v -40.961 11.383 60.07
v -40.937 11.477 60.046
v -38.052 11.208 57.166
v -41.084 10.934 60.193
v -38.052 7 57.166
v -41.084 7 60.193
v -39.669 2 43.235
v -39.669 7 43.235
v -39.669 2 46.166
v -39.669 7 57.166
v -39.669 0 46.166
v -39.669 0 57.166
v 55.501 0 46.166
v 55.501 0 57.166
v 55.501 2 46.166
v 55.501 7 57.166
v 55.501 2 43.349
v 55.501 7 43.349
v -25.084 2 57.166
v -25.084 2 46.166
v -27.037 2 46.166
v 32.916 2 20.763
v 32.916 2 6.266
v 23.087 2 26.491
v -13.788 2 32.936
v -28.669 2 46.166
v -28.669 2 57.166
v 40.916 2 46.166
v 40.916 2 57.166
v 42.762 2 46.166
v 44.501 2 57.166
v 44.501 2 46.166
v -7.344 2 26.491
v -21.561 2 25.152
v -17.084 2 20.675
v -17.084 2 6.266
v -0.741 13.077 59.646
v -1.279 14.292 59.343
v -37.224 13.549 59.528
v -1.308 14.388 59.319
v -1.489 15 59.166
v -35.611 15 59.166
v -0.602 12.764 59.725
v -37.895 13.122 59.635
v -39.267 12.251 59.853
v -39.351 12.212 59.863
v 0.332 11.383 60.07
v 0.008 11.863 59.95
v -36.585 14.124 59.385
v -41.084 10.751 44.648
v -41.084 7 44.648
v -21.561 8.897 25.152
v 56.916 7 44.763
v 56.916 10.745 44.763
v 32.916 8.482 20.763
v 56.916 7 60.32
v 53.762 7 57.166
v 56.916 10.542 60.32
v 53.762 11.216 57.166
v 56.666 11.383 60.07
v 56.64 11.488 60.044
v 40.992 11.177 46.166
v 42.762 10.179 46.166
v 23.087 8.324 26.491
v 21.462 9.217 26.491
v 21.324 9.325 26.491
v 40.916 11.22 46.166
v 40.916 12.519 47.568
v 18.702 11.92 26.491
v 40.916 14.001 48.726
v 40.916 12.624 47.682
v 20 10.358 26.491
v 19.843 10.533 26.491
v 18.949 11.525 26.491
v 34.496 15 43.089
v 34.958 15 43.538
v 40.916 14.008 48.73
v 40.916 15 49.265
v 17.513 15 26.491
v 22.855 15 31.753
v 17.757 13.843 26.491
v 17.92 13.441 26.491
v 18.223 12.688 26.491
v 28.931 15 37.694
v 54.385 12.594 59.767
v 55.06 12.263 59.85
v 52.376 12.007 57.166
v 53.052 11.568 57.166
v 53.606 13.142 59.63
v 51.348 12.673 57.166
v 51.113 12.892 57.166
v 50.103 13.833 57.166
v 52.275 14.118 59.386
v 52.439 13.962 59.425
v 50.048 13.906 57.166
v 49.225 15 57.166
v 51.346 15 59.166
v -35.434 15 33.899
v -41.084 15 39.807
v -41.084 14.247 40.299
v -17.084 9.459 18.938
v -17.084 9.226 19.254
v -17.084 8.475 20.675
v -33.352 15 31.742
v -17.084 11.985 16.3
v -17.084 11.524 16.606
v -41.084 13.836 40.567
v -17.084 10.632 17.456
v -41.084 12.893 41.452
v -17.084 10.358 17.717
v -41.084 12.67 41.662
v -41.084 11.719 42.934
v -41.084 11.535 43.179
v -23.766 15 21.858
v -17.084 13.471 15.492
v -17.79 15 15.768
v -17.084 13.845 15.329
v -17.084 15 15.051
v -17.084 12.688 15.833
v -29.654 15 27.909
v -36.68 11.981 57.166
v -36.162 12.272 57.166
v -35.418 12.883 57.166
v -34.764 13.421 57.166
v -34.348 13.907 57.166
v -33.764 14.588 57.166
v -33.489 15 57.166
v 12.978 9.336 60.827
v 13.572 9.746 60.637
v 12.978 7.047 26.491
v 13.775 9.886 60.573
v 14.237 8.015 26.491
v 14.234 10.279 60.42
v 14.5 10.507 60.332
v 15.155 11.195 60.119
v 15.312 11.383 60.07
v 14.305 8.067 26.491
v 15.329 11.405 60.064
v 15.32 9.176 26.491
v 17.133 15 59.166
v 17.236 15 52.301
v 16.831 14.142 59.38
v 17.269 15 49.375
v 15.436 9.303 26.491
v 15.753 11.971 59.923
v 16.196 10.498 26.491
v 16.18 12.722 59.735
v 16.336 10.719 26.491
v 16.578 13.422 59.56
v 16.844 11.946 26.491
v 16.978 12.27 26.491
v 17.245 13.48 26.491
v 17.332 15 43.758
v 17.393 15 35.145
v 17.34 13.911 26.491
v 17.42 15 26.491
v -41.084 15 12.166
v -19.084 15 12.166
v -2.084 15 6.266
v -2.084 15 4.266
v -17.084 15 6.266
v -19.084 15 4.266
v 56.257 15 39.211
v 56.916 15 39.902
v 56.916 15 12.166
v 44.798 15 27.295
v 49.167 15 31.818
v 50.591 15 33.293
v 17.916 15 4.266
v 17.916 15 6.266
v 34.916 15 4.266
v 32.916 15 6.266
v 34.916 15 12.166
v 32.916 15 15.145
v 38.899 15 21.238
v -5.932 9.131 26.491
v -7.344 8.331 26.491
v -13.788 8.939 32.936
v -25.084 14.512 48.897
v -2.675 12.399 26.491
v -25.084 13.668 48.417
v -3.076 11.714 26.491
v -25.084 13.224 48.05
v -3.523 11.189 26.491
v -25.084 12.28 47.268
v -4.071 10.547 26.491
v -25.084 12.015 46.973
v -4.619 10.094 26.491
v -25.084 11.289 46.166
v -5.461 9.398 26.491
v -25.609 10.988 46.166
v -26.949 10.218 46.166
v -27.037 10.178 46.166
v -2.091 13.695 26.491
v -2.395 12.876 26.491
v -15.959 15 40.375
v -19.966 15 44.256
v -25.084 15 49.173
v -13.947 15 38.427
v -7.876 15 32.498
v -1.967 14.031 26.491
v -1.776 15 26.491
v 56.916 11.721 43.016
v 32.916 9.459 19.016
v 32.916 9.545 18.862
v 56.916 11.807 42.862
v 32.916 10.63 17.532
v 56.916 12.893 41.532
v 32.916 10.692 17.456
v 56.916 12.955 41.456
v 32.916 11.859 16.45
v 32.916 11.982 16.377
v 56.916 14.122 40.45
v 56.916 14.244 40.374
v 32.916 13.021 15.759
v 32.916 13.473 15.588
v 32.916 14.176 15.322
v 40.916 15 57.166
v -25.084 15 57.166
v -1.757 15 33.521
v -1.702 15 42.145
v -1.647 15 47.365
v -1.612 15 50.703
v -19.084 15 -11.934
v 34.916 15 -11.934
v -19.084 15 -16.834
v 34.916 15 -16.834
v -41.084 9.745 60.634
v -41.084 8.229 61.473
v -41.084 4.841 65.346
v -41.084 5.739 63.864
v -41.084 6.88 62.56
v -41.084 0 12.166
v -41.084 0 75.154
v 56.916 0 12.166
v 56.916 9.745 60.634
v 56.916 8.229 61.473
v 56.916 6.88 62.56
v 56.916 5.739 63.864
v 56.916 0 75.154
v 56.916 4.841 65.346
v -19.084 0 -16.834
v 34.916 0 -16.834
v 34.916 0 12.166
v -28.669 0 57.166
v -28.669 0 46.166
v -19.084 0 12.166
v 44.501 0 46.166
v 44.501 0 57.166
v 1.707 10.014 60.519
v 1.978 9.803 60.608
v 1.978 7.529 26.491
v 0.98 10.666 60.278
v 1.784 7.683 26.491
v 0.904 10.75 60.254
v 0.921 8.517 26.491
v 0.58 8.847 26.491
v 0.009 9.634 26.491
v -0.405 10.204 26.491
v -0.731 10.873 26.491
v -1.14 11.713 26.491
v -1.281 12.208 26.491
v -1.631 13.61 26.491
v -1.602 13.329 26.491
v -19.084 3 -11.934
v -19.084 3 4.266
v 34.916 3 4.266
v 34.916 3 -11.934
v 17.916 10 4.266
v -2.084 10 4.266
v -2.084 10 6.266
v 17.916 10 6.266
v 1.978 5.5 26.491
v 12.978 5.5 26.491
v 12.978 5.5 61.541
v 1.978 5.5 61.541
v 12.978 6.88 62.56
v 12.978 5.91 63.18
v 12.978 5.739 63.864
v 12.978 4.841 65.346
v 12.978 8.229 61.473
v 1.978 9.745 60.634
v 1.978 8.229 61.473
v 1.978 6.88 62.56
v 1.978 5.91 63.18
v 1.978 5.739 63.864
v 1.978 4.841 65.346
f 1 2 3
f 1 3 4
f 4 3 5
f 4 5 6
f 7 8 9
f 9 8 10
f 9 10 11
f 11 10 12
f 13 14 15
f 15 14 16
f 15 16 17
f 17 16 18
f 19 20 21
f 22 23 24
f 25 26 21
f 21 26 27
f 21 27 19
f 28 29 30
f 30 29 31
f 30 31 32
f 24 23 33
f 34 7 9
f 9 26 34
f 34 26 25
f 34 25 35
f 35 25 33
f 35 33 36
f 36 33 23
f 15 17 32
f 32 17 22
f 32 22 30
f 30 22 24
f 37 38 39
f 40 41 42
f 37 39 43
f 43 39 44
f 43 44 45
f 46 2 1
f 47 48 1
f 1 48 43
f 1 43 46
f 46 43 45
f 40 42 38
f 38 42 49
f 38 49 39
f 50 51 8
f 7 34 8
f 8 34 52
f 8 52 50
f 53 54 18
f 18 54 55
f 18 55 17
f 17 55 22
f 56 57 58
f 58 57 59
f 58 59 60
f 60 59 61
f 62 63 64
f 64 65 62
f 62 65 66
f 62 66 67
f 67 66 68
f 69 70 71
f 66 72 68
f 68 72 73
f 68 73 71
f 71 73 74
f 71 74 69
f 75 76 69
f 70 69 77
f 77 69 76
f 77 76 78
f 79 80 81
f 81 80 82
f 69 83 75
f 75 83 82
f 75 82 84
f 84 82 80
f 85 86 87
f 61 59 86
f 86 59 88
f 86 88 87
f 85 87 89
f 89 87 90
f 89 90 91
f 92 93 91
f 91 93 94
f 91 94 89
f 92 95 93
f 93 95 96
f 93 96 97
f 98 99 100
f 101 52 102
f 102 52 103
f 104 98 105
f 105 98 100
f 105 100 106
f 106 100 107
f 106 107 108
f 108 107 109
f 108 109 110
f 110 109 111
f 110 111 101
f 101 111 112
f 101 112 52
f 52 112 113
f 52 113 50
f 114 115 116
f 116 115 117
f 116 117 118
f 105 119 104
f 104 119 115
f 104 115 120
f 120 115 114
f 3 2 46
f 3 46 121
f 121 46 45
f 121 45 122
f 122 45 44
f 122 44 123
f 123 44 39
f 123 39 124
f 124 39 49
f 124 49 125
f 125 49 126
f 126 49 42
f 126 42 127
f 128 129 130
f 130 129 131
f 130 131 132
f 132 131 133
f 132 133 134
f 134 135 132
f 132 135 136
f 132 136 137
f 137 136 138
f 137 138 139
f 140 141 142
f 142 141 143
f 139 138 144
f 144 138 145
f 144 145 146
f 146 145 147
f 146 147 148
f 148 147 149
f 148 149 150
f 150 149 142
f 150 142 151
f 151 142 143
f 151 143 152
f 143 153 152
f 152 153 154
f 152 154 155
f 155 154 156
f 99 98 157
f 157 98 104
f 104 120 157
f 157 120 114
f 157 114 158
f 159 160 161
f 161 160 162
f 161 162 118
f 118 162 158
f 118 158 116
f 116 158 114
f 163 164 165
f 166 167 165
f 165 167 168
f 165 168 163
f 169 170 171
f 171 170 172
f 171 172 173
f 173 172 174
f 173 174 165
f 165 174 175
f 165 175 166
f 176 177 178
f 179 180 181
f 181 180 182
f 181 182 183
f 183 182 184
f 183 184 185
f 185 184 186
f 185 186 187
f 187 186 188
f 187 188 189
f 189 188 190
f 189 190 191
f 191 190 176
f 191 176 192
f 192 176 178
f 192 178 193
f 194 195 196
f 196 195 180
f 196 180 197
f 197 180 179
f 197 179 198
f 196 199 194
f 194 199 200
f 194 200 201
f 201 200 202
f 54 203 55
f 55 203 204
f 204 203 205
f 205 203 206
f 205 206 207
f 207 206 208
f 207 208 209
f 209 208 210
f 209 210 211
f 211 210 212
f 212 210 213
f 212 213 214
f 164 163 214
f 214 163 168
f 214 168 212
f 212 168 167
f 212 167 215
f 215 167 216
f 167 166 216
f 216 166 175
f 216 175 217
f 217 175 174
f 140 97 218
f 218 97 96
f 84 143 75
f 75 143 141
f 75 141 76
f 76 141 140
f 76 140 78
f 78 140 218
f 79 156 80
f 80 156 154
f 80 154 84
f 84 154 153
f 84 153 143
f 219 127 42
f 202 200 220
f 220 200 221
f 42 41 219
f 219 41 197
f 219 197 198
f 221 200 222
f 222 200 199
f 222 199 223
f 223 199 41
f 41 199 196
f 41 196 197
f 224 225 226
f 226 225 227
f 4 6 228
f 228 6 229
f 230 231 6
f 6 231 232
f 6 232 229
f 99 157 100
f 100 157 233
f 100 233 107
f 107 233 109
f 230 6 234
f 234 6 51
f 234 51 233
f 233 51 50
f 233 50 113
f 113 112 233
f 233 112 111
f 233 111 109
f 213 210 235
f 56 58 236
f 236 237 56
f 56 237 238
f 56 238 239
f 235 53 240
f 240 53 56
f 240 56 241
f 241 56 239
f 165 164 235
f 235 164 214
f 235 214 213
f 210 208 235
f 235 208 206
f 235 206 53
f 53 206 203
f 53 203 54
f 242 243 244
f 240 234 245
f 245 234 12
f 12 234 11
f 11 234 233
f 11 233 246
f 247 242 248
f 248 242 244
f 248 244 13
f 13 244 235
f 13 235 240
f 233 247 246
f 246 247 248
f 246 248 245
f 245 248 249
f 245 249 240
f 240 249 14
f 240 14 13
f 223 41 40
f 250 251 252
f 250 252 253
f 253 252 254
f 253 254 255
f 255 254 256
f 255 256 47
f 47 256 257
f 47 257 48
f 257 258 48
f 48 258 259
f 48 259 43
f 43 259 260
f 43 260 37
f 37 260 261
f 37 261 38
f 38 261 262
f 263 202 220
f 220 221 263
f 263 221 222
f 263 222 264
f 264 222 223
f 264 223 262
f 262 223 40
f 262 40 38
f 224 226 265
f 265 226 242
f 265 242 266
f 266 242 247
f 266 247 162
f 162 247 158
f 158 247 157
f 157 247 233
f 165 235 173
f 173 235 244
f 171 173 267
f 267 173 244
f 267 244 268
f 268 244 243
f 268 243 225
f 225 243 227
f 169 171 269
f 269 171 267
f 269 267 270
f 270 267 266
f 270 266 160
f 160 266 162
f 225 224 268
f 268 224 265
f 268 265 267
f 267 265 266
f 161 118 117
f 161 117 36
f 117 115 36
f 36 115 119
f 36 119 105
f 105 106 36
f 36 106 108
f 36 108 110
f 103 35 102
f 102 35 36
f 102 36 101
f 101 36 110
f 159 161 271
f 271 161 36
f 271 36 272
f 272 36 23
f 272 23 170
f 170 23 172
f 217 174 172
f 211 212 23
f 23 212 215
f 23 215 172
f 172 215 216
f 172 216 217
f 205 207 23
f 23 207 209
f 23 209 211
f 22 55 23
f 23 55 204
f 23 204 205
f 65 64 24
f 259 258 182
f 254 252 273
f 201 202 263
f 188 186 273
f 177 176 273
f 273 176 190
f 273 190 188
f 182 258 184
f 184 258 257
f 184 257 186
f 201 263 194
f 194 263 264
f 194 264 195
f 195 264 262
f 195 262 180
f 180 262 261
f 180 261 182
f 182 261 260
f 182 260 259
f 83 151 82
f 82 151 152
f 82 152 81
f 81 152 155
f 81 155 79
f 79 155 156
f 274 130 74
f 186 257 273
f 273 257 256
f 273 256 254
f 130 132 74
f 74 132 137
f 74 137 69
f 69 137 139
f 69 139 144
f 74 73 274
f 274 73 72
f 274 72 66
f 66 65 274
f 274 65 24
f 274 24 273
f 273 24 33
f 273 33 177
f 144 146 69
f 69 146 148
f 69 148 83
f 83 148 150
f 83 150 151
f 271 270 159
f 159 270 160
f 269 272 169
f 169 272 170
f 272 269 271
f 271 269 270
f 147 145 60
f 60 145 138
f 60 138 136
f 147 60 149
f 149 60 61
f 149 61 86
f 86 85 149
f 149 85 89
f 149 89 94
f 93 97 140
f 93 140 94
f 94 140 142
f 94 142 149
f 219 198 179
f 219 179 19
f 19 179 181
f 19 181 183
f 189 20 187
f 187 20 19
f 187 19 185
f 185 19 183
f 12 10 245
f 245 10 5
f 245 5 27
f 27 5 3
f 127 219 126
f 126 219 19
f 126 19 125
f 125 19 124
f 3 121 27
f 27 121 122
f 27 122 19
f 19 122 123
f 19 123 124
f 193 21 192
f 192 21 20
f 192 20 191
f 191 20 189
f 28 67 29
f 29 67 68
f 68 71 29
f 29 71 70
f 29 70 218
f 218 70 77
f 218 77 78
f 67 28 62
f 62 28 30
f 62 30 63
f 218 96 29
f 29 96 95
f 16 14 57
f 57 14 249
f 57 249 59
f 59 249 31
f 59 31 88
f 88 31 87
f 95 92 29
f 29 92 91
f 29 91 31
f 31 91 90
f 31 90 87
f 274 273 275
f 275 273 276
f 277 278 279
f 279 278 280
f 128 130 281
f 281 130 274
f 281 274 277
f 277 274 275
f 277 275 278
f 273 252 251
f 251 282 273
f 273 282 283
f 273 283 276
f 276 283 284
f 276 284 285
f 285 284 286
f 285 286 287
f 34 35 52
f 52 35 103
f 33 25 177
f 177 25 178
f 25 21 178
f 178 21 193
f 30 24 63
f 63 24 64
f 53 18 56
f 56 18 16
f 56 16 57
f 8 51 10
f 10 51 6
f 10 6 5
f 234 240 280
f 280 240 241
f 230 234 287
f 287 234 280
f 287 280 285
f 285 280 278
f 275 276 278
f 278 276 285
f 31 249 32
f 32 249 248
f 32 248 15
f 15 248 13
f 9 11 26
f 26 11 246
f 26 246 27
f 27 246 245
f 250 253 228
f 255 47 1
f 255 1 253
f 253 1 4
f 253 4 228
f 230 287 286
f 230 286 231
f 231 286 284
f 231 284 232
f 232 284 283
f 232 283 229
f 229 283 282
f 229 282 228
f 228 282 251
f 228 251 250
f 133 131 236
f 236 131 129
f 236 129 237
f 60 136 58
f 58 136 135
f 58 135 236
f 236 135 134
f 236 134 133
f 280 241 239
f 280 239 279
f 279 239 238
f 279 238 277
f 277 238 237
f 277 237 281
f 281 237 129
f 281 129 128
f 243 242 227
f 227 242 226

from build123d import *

# Parameters (mm, degrees)
SKETCH1_W                = 98
SKETCH1_H                = 90
BOSS_EXTRUDE1_DEPTH      = 15
CUT_EXTRUDE1_DEPTH       = 15
CUT_EXTRUDE2_DEPTH       = 15
CUT_EXTRUDE5_DEPTH       = 100
CUT_EXTRUDE6_DEPTH       = 100
SKETCH9_R                = 9.5
CUT_EXTRUDE7_DEPTH       = 45
SKETCH10_R               = 9.5
CUT_EXTRUDE8_DEPTH       = 45
BOSS_EXTRUDE3_DEPTH      = 100
BOSS_EXTRUDE4_DEPTH      = 100
SKETCH14_W               = 54.537944566
SKETCH14_H               = 37.433727788
CUT_EXTRUDE9_DEPTH       = 100
SKETCH15_W               = 37.221464136
SKETCH15_H               = 31.979004399
CUT_EXTRUDE10_DEPTH      = 100
BOSS_EXTRUDE5_DEPTH      = 15
BOSS_EXTRUDE6_DEPTH      = 15
BOSS_EXTRUDE7_DEPTH      = 15
CUT_EXTRUDE11_DEPTH      = 100
SKETCH20_R               = 9.5
CUT_EXTRUDE12_DEPTH      = 45
SKETCH21_R               = 9.5
CUT_EXTRUDE13_DEPTH      = 100
SKETCH22_R               = 9.5
BOSS_EXTRUDE8_DEPTH      = 55
SKETCH23_R               = 9.5
CUT_EXTRUDE14_DEPTH      = 55
SKETCH24_R               = 9.5
CUT_EXTRUDE15_DEPTH      = 100
SKETCH25_R               = 9.5
BOSS_EXTRUDE10_DEPTH     = 100
SKETCH26_R               = 9.5
CUT_EXTRUDE16_DEPTH      = 100
CUT_EXTRUDE19_DEPTH      = 100
CUT_EXTRUDE19_DEPTH_BACK = 100
SKETCH27_W               = 176.377882562
SKETCH27_H               = 122.842530298
SKETCH27_W_2             = 98
SKETCH27_H_2             = 90
SKETCH28_W               = 109.510814303
SKETCH28_H               = 24.111992001
CUT_EXTRUDE20_DEPTH      = 100
SKETCH29_R               = 9.59940523
CUT_EXTRUDE21_DEPTH      = 100
SKETCH30_W               = 22
SKETCH30_H               = 32
CUT_EXTRUDE22_DEPTH      = 100
SKETCH31_W               = 16.2
SKETCH31_H               = 12
CUT_EXTRUDE23_DEPTH      = 100
CUT_EXTRUDE24_DEPTH      = 13
SKETCH33_W               = 50.373016546
SKETCH33_H               = 2
BOSS_EXTRUDE12_DEPTH     = 15
SKETCH34_W               = 20
SKETCH34_H               = 2
CUT_EXTRUDE25_DEPTH      = 5
CUT_EXTRUDE27_DEPTH      = 100
SKETCH37_W               = 14
SKETCH37_H               = 11
CUT_EXTRUDE28_DEPTH      = 13
CUT_EXTRUDE32_DEPTH      = 9.5
CUT_EXTRUDE33_DEPTH      = 13
CUT_EXTRUDE34_DEPTH      = 13
BOSS_EXTRUDE18_DEPTH     = 5
BOSS_EXTRUDE19_DEPTH     = 5
BOSS_EXTRUDE21_DEPTH     = 98
BOSS_EXTRUDE22_DEPTH     = 98
BOSS_EXTRUDE23_DEPTH     = 98
SKETCH47_W               = 11
SKETCH47_H               = 1.433264646
CUT_EXTRUDE36_DEPTH      = 98
SKETCH48_W               = 11
SKETCH48_H               = 11
CUT_EXTRUDE37_DEPTH      = 98
BOSS_EXTRUDE24_DEPTH     = 5
BOSS_EXTRUDE25_DEPTH     = 5
FILLET1_R                = 10
SKETCH52_W               = 3
SKETCH52_H               = 15
CUT_EXTRUDE39_DEPTH      = 100


with BuildPart() as part:
    # Sketch1 → Boss-Extrude1 (new body)
    with BuildSketch(Plane(origin=(0, 0, 0), x_dir=(1, 0, 0), z_dir=(0, 1, 0))):
        with Locations((7.915679061, -25.165675541)):
            Rectangle(SKETCH1_W, SKETCH1_H)
    extrude(amount=BOSS_EXTRUDE1_DEPTH)

    # Sketch3 → Cut-Extrude1 (cut)
    with BuildSketch(Plane(origin=(0, 15, 0), x_dir=(1, 0, 0), z_dir=(0, 1, 0))):
        Polygon((-41.084320939, -35.165675541), (-6.084320939, -70.165675541), (-41.084320939, -70.165675541), align=None)
        Polygon((21.915679061, -70.165675541), (56.915679061, -35.165675541), (56.915679061, -70.165675541), align=None)
    extrude(amount=-CUT_EXTRUDE1_DEPTH, mode=Mode.SUBTRACT)

    # Sketch4 → Cut-Extrude2 (cut)
    with BuildSketch(Plane(origin=(0, 15, 0), x_dir=(1, 0, 0), z_dir=(0, 1, 0))):
        Polygon((-41.084320939, -35.165675541), (-32.241899351, -26.323253953), (-41.084320939, -17.480832365), align=None)
        Polygon((56.915679061, -17.480832365), (48.073257473, -26.323253953), (56.915679061, -35.165675541), align=None)
    extrude(amount=-CUT_EXTRUDE2_DEPTH, mode=Mode.SUBTRACT)

    # Sketch5 → Cut-Extrude5 (cut)
    with BuildSketch(Plane(origin=(-2.959322699, 0, -2.959322699), x_dir=(-0.7071067811865461, 0, 0.7071067811865489), z_dir=(-0.7071067811865489, 0, -0.7071067811865461))):
        Polygon((53.916889577, 0), (52.916889577, 15), (53.916889577, 15), align=None)
    extrude(amount=-CUT_EXTRUDE5_DEPTH, mode=Mode.SUBTRACT)

    # Sketch8 → Cut-Extrude6 (cut)
    with BuildSketch(Plane(origin=(10.87500176, 0, -10.87500176), x_dir=(-0.7071067811865438, 0, -0.7071067811865513), z_dir=(0.7071067811865513, 0, -0.7071067811865438))):
        Polygon((-65.11135026, 0), (-64.11135026, 15), (-65.11135026, 15), align=None)
    extrude(amount=-CUT_EXTRUDE6_DEPTH, mode=Mode.SUBTRACT)

    # Sketch9 → Cut-Extrude7 (cut)
    with BuildSketch(Plane(origin=(45.83695749, 4.321549796, 45.83695749), x_dir=(0.7086694500121591, -0.06622532692378834, -0.7024256663116043), z_dir=(0.7055406512876944, 0.06651901052377404, 0.7055406512877016))):
        with Locations((-0.364665022, 13.674807707)):
            Circle(SKETCH9_R)
    extrude(amount=-CUT_EXTRUDE7_DEPTH, mode=Mode.SUBTRACT)

    # Sketch10 → Cut-Extrude8 (cut)
    with BuildSketch(Plane(origin=(-37.956303558, 3.578554618, 37.956303558), x_dir=(0.708669450012157, 0.06622532692378813, 0.7024256663116066), z_dir=(-0.7055406512876966, 0.06651901052377338, 0.7055406512876994))):
        with Locations((11.452044949, 13.683576238)):
            Circle(SKETCH10_R)
    extrude(amount=-CUT_EXTRUDE8_DEPTH, mode=Mode.SUBTRACT)

    # Sketch12 → Boss-Extrude3 (add)
    with BuildSketch(Plane(origin=(10.87500176, 0, -10.87500176), x_dir=(-0.7071067811865438, 0, -0.7071067811865513), z_dir=(0.7071067811865513, 0, -0.7071067811865438))):
        Polygon((-65.11135026, 0), (-64.11135026, 15), (-65.11135026, 15), align=None)
    extrude(amount=-BOSS_EXTRUDE3_DEPTH)

    # Sketch13 → Boss-Extrude4 (add)
    with BuildSketch(Plane(origin=(-2.959322699, 0, -2.959322699), x_dir=(-0.7071067811865461, 0, 0.7071067811865489), z_dir=(-0.7071067811865489, 0, -0.7071067811865461))):
        Polygon((53.916889577, 0), (52.916889577, 15), (53.916889577, 15), align=None)
    extrude(amount=-BOSS_EXTRUDE4_DEPTH)

    # Sketch14 → Cut-Extrude9 (cut)
    with BuildSketch(Plane(origin=(0, 15, 0), x_dir=(1, 0, 0), z_dir=(0, 1, 0))):
        with Locations((21.184651344, -88.882539435)):
            Rectangle(SKETCH14_W, SKETCH14_H)
    extrude(amount=-CUT_EXTRUDE9_DEPTH, mode=Mode.SUBTRACT)


with BuildPart() as cut_extrude9_piece_1:
    # of the separate pieces the step leaves, piece 1, a body of its own (cut_extrude9_pieces)
    add(part.part.solids().sort_by_distance((-41.084320939, 0, -19.834324459))[0])

    # Sketch16 → Boss-Extrude5 (add)
    with BuildSketch(Plane(origin=(0, 15, 0), x_dir=(1, 0, 0), z_dir=(0, 1, 0))):
        Polygon((-6.084320939, -70.165675541), (-35.8985557, -70.165675541), (-41.084320939, -70.165675541), (-41.084320939, -35.165675541), align=None)
    extrude(amount=-BOSS_EXTRUDE5_DEPTH)

    # Sketch17 → Boss-Extrude6 (add)
    with BuildSketch(Plane(origin=(0, 15, 0), x_dir=(1, 0, 0), z_dir=(0, 1, 0))):
        Polygon((21.915679061, -70.165675541), (49.886241171, -70.165675541), (56.915679061, -70.165675541), (56.915679061, -35.165675541), align=None)
    extrude(amount=-BOSS_EXTRUDE6_DEPTH)

    # Sketch18 → Boss-Extrude7 (add)
    with BuildSketch(Plane(origin=(0, 15, 0), x_dir=(1, 0, 0), z_dir=(0, 1, 0))):
        Polygon((48.073257473, -26.323253953), (56.915679061, -17.480832365), (56.915679061, -35.165675541), align=None)
        Polygon((-41.084320939, -35.165675541), (-41.084320939, -17.480832365), (-32.241899351, -26.323253953), align=None)
    extrude(amount=-BOSS_EXTRUDE7_DEPTH)

    # Sketch19 → Cut-Extrude11 (cut)
    with BuildSketch(Plane(origin=(56.915679061, 0, 0), x_dir=(0, 0, -1), z_dir=(1, 0, 0))):
        Polygon((-70.165675541, 0), (-69.165675541, 15), (-70.165675541, 15), align=None)
    extrude(amount=-CUT_EXTRUDE11_DEPTH, mode=Mode.SUBTRACT)

    # Sketch20 → Cut-Extrude12 (cut)
    with BuildSketch(Plane(origin=(0, 4.657013863, 69.85520795), x_dir=(1, 0, 0), z_dir=(0, 0.06651901052377399, 0.997785157856609))):
        with Locations((7.915679061, 13.33264869)):
            Circle(SKETCH20_R)
    extrude(amount=-CUT_EXTRUDE12_DEPTH, mode=Mode.SUBTRACT)

    # Sketch21 → Cut-Extrude13 (cut)
    with BuildSketch(Plane(origin=(14.087628182, 1.328194322, 14.087628182), x_dir=(0.708669450012159, -0.06622532692378837, -0.7024256663116044), z_dir=(0.7055406512876945, 0.06651901052377404, 0.7055406512877015))):
        with Locations((2.201455665, 13.878873478)):
            Circle(SKETCH21_R)
    extrude(amount=CUT_EXTRUDE13_DEPTH, mode=Mode.SUBTRACT)

    # Sketch22 → Boss-Extrude8 (add)
    with BuildSketch(Plane(origin=(14.087628182, 1.328194322, 14.087628182), x_dir=(0.708669450012159, -0.06622532692378837, -0.7024256663116044), z_dir=(0.7055406512876945, 0.06651901052377404, 0.7055406512877015))):
        with Locations((-0.364665022, 13.674807707)):
            Circle(SKETCH22_R)
    extrude(amount=BOSS_EXTRUDE8_DEPTH)

    # Sketch23 → Cut-Extrude14 (cut)
    with BuildSketch(Plane(origin=(52.892364003, 4.986739901, 52.892364003), x_dir=(0.7024256663116113, 0.0662253269237897, -0.7086694500121521), z_dir=(0.7055406512876945, 0.06651901052377404, 0.7055406512877014))):
        with Locations((4.020343442, 13.465005557)):
            Circle(SKETCH23_R)
    extrude(amount=-CUT_EXTRUDE14_DEPTH, mode=Mode.SUBTRACT)

    # Sketch24 → Cut-Extrude15 (cut)
    with BuildSketch(Plane(origin=(-6.20697425, 0.585199144, 6.20697425), x_dir=(0.708669450012157, 0.06622532692378813, 0.7024256663116066), z_dir=(-0.7055406512876966, 0.06651901052377338, 0.7055406512876995))):
        with Locations((8.951834225, 13.883257743)):
            Circle(SKETCH24_R)
    extrude(amount=CUT_EXTRUDE15_DEPTH, mode=Mode.SUBTRACT)

    # Sketch25 → Boss-Extrude10 (add)
    with BuildSketch(Plane(origin=(-6.20697425, 0.585199144, 6.20697425), x_dir=(0.708669450012157, 0.06622532692378813, 0.7024256663116066), z_dir=(-0.7055406512876966, 0.06651901052377338, 0.7055406512876994))):
        with Locations(Location((11.452044949, 13.683576238, 0), (0, 0, 175.993532534))):
            Circle(SKETCH25_R)
    extrude(amount=BOSS_EXTRUDE10_DEPTH)

    # Sketch26 → Cut-Extrude16 (cut)
    with BuildSketch(Plane(origin=(-6.20697425, 0.585199144, 6.20697425), x_dir=(0.708669450012157, 0.06622532692378813, 0.7024256663116066), z_dir=(-0.7055406512876966, 0.06651901052377338, 0.7055406512876994))):
        with Locations((8.951834225, 13.883257743)):
            Circle(SKETCH26_R)
    extrude(amount=CUT_EXTRUDE16_DEPTH, mode=Mode.SUBTRACT)

    # Sketch27 → Cut-Extrude19 (cut, two sides: drawn at the far end of the back side and taken through both)
    with BuildSketch(Plane(origin=(0, 15, 0), x_dir=(1, 0, 0), z_dir=(0, 1, 0)).offset(-CUT_EXTRUDE19_DEPTH_BACK)):
        with Locations((3.867081439, -38.319377922)):
            Rectangle(SKETCH27_W, SKETCH27_H)
        with Locations((7.915679061, -25.165675541)):
            Rectangle(SKETCH27_W_2, SKETCH27_H_2, mode=Mode.SUBTRACT)
    extrude(amount=CUT_EXTRUDE19_DEPTH + CUT_EXTRUDE19_DEPTH_BACK, mode=Mode.SUBTRACT)

    # Sketch28 → Cut-Extrude20 (cut)
    with BuildSketch(Plane(origin=(0, 0, -19.834324459), x_dir=(-1, 0, 0), z_dir=(0, 0, -1))):
        with Locations((-2.16027191, 27.055996001)):
            Rectangle(SKETCH28_W, SKETCH28_H)
    extrude(amount=-CUT_EXTRUDE20_DEPTH, mode=Mode.SUBTRACT)

    # Sketch29 → Cut-Extrude21 (cut)
    with BuildSketch(Plane(origin=(0, 1.66365839, 24.954875847), x_dir=(1, 0, 0), z_dir=(0, 0.066519010523774, 0.997785157856609))):
        with Locations((7.822016096, 13.365945069)):
            Circle(SKETCH29_R)
    extrude(amount=CUT_EXTRUDE21_DEPTH, mode=Mode.SUBTRACT)

    # Sketch30 → Cut-Extrude22 (cut)
    with BuildSketch(Plane(origin=(0, 15, 0), x_dir=(1, 0, 0), z_dir=(0, 1, 0))):
        with Locations((-30.084320939, 3.834324459)):
            Rectangle(SKETCH30_W, SKETCH30_H)
        with Locations((45.915679061, 3.834324459)):
            Rectangle(SKETCH30_W, SKETCH30_H)
    extrude(amount=-CUT_EXTRUDE22_DEPTH, mode=Mode.SUBTRACT)

    # Sketch31 → Cut-Extrude23 (cut)
    with BuildSketch(Plane(origin=(34.915679061, 0, 0), x_dir=(0, 0, -1), z_dir=(1, 0, 0))):
        with Locations((3.834324459, 9)):
            Rectangle(SKETCH31_W, SKETCH31_H)
    extrude(amount=-CUT_EXTRUDE23_DEPTH, mode=Mode.SUBTRACT)

    # Sketch32 → Cut-Extrude24 (cut)
    with BuildSketch(Plane(origin=(0, 15, 0), x_dir=(1, 0, 0), z_dir=(0, 1, 0))):
        Polygon((-1.776033561, -26.490930679), (32.915679061, -26.490930679), (32.915679061, -6.265675541), (-1.776033561, -6.265675541), (-17.084320939, -6.265675541), (-17.084320939, -26.490930679), align=None)
    extrude(amount=-CUT_EXTRUDE24_DEPTH, mode=Mode.SUBTRACT)

    # Sketch33 → Boss-Extrude12 (add)
    with BuildSketch(Plane(origin=(0, 15, 0), x_dir=(1, 0, 0), z_dir=(0, 1, 0))):
        with Locations((7.729170788, -5.265675541)):
            Rectangle(SKETCH33_W, SKETCH33_H)
    extrude(amount=-BOSS_EXTRUDE12_DEPTH)

    # Sketch34 → Cut-Extrude25 (cut)
    with BuildSketch(Plane(origin=(0, 15, 0), x_dir=(1, 0, 0), z_dir=(0, 1, 0))):
        with Locations((7.915679061, -5.265675541)):
            Rectangle(SKETCH34_W, SKETCH34_H)
    extrude(amount=-CUT_EXTRUDE25_DEPTH, mode=Mode.SUBTRACT)

    # Sketch35 → Cut-Extrude27 (cut)
    with BuildSketch(Plane(origin=(56.915679061, 0, 0), x_dir=(0, 0, -1), z_dir=(1, 0, 0))):
        Polygon((-70.165675541, 0), (-62.165675541, 3), (-59.165675541, 15), (-69.165675541, 15), align=None)
    extrude(amount=-CUT_EXTRUDE27_DEPTH, mode=Mode.SUBTRACT)

    # Sketch37 → Cut-Extrude28 (cut)
    with BuildSketch(Plane(origin=(0, 15, 0), x_dir=(1, 0, 0), z_dir=(0, 1, 0))):
        with Locations((-32.084320939, -51.665675541)):
            Rectangle(SKETCH37_W, SKETCH37_H)
        with Locations((47.915679061, -51.665675541)):
            Rectangle(SKETCH37_W, SKETCH37_H)
    extrude(amount=-CUT_EXTRUDE28_DEPTH, mode=Mode.SUBTRACT)

    # Sketch38 → Cut-Extrude32 (cut)
    with BuildSketch(Plane(origin=(0, 15, 0), x_dir=(1, 0, 0), z_dir=(0, 1, 0))):
        Polygon((1.978443982, -26.490930679), (12.978443982, -26.490930679), (12.978443982, -60.585728785), (12.978443982, -67.440751443), (1.978443982, -67.440751443), (1.978443982, -60.585728785), align=None)
    extrude(amount=-CUT_EXTRUDE32_DEPTH, mode=Mode.SUBTRACT)

    # Sketch39 → Cut-Extrude33 (cut)
    with BuildSketch(Plane(origin=(0, 15, 0), x_dir=(1, 0, 0), z_dir=(0, 1, 0))):
        Polygon((-45.219574639, -64.32279028), (-13.788468286, -32.935894494), (-3.89606958, -23.043495788), (-11.674242247, -15.265323121), (-21.561166767, -25.152247641), (-52.99227312, -56.539143427), align=None)
    extrude(amount=-CUT_EXTRUDE33_DEPTH, mode=Mode.SUBTRACT)

    # Sketch40 → Cut-Extrude34 (cut)
    with BuildSketch(Plane(origin=(0, 15, 0), x_dir=(1, 0, 0), z_dir=(0, 1, 0))):
        Polygon((61.02716679, -64.431216155), (18.755523073, -22.159572438), (26.533697666, -14.381397845), (68.805341383, -56.653041562), align=None)
    extrude(amount=-CUT_EXTRUDE34_DEPTH, mode=Mode.SUBTRACT)

    # Sketch41 → Boss-Extrude18 (add)
    with BuildSketch(Plane(origin=(0, 2, 0), x_dir=(1, 0, 0), z_dir=(0, 1, 0))):
        Polygon((56.915679061, -60.319728426), (56.915679061, -44.76337924), (55.501465498, -43.349165677), (55.501465498, -58.905514864), align=None)
    extrude(amount=BOSS_EXTRUDE18_DEPTH)

    # Sketch42 → Boss-Extrude19 (add)
    with BuildSketch(Plane(origin=(0, 2, 0), x_dir=(1, 0, 0), z_dir=(0, 1, 0))):
        Polygon((-41.084320939, -44.64794081), (-39.669112421, -43.234722905), (-39.669112421, -58.780135266), (-41.084320939, -60.193353172), align=None)
    extrude(amount=BOSS_EXTRUDE19_DEPTH)

    # Sketch43 → Boss-Extrude21 (add)
    with BuildSketch(Plane(origin=(56.915679061, 0, 0), x_dir=(0, 0, -1), z_dir=(1, 0, 0))):
        Polygon((-62.165675541, 3), (-75.154441573, 0), (-62.154441573, 0), align=None)
    extrude(amount=-BOSS_EXTRUDE21_DEPTH)

    # Sketch45 → Boss-Extrude22 (add)
    with BuildSketch(Plane(origin=(56.915679061, 0, 0), x_dir=(0, 0, -1), z_dir=(1, 0, 0))):
        Polygon((-75.154441573, 0), (-61.544684912, 5.483962515), (-62.165675541, 3), align=None)
    extrude(amount=-BOSS_EXTRUDE22_DEPTH)

    # Sketch46 → Boss-Extrude23 (add)
    with BuildSketch(Plane(origin=(56.915679061, 0, 0), x_dir=(0, 0, -1), z_dir=(1, 0, 0))):
        Polygon((-75.154441573, 0), (-61.193057804, 6.890470947), (-61.544684912, 5.483962515), align=None)
    extrude(amount=-BOSS_EXTRUDE23_DEPTH)

    # Sketch47 → Cut-Extrude36 (cut)
    with BuildSketch(Plane(origin=(0, 14.803688363, 59.21475345), x_dir=(-1, 0, 0), z_dir=(0, -0.24253562503633455, -0.9701425001453315))):
        with Locations((-7.478443982, -8.873390134)):
            Rectangle(SKETCH47_W, SKETCH47_H)
    extrude(amount=-CUT_EXTRUDE36_DEPTH, mode=Mode.SUBTRACT)

    # Sketch48 → Cut-Extrude37 (cut)
    with BuildSketch(Plane(origin=(0, 2, 0), x_dir=(1, 0, 0), z_dir=(0, 1, 0))):
        with Locations((50.001465498, -51.665675541)):
            Rectangle(SKETCH48_W, SKETCH48_H)
        with Locations((-34.169112421, -51.665675541)):
            Rectangle(SKETCH48_W, SKETCH48_H)
    extrude(amount=-CUT_EXTRUDE37_DEPTH, mode=Mode.SUBTRACT)

    # Sketch49 → Boss-Extrude24 (add)
    with BuildSketch(Plane(origin=(0, 2, 0), x_dir=(1, 0, 0), z_dir=(0, 1, 0))):
        Polygon((55.501465498, -58.905514864), (53.761626176, -57.165675541), (55.501465498, -57.165675541), align=None)
    extrude(amount=BOSS_EXTRUDE24_DEPTH)

    # Sketch50 → Boss-Extrude25 (add)
    with BuildSketch(Plane(origin=(0, 2, 0), x_dir=(1, 0, 0), z_dir=(0, 1, 0))):
        Polygon((-39.669112421, -58.780135266), (-39.669112421, -57.165675541), (-38.05237862, -57.165675541), align=None)
    extrude(amount=BOSS_EXTRUDE25_DEPTH)

    # Fillet1
    # the kernel refuses this fillet: 10 mm, written as the material it adds along each edge
    with BuildSketch(Plane(origin=(13.55540496, 6.890470947, 61.193057804), x_dir=(0, 0.9701425001453308, -0.24253562503633758), z_dir=(-1, 0, 0))) as fillet1_piece_1_section:
        with BuildLine():
            CenterArc((FILLET1_R * 0.463078439096, -FILLET1_R), FILLET1_R, 90, 49.695674719)
            Line((-FILLET1_R * 0.299541062007, -FILLET1_R * 0.353152648194), (0, 0))
            Line((0, 0), (FILLET1_R * 0.463078439096, 0))
        make_face()
    fillet1_piece_1 = extrude(amount=66.216686876, mode=Mode.PRIVATE)
    fillet1_piece_1 = fillet1_piece_1 - Plane(origin=(7.822016096, 17.466268035, 61.059806924), x_dir=(1, 0, 0), z_dir=(0, -0.066519010523774, -0.997785157856609)) * Cylinder(9.59940523, 151, mode=Mode.PRIVATE)
    fillet1_piece_1 = split(fillet1_piece_1, bisect_by=Plane(origin=(12.978443982, 7.402731352, 61.73070937), z_dir=(1, 0, 0)), keep=Keep.TOP, mode=Mode.PRIVATE)
    add(fillet1_piece_1)
    with BuildSketch(Plane(origin=(1.978443982, 6.890470947, 61.193057804), x_dir=(0, 0.9701425001453315, -0.24253562503633466), z_dir=(-1, 0, 0))) as fillet1_piece_2_section:
        with BuildLine():
            CenterArc((FILLET1_R * 0.463078439096, -FILLET1_R), FILLET1_R, 90, 49.695674719)
            Line((-FILLET1_R * 0.299541062007, -FILLET1_R * 0.353152648194), (0, 0))
            Line((0, 0), (FILLET1_R * 0.463078439096, 0))
        make_face()
    fillet1_piece_2 = extrude(amount=43.062764921, mode=Mode.PRIVATE)
    fillet1_piece_2 = fillet1_piece_2 - Plane(origin=(7.822016096, 17.463039168, 61.011373922), x_dir=(1, 0, 0), z_dir=(0, -0.066519010523774, -0.997785157856609)) * Cylinder(9.59940523, 105, mode=Mode.PRIVATE)
    fillet1_piece_2 = split(fillet1_piece_2, bisect_by=Plane(origin=(-31.047137457, 7.518724185, 50.170287855), z_dir=(0.7066089528007494, 0, 0.7076042593299086)), keep=Keep.TOP, mode=Mode.PRIVATE)
    add(fillet1_piece_2)
    with BuildSketch(Plane(origin=(56.915679061, 6.890470947, 61.193057804), x_dir=(0, 0.9701425001453315, -0.24253562503633466), z_dir=(-1, 0, 0))) as fillet1_piece_3_section:
        with BuildLine():
            CenterArc((FILLET1_R * 0.463078439096, -FILLET1_R), FILLET1_R, 90, 49.695674719)
            Line((-FILLET1_R * 0.299541062007, -FILLET1_R * 0.353152648194), (0, 0))
            Line((0, 0), (FILLET1_R * 0.463078439096, 0))
        make_face()
    fillet1_piece_3 = extrude(amount=43.937235079, mode=Mode.PRIVATE)
    fillet1_piece_3 = fillet1_piece_3 - Plane(origin=(7.822016096, 17.463085429, 61.012067836), x_dir=(1, 0, 0), z_dir=(0, -0.066519010523774, -0.997785157856609)) * Cylinder(9.59940523, 107, mode=Mode.PRIVATE)
    fillet1_piece_3 = split(fillet1_piece_3, bisect_by=Plane(origin=(46.619372597, 7.517054753, 50.023421962), z_dir=(-0.7071067811865472, 0, 0.7071067811865478)), keep=Keep.TOP, mode=Mode.PRIVATE)
    add(fillet1_piece_3)
    with BuildSketch(Plane(origin=(68.492640038, 6.890470947, 61.193057804), x_dir=(0, 0.9701425001453315, -0.2425356250363346), z_dir=(-1, 0, 0))) as fillet1_piece_4_section:
        with BuildLine():
            CenterArc((FILLET1_R * 0.463078439096, -FILLET1_R), FILLET1_R, 90, 49.695674719)
            Line((-FILLET1_R * 0.299541062007, -FILLET1_R * 0.353152648194), (0, 0))
            Line((0, 0), (FILLET1_R * 0.463078439096, 0))
        make_face()
    fillet1_piece_4 = extrude(amount=67.091157033, mode=Mode.PRIVATE)
    fillet1_piece_4 = fillet1_piece_4 - Plane(origin=(7.822016096, 17.464349007, 61.031021503), x_dir=(1, 0, 0), z_dir=(0, -0.066519010523774, -0.997785157856609)) * Cylinder(9.59940523, 153, mode=Mode.PRIVATE)
    fillet1_piece_4 = split(fillet1_piece_4, bisect_by=Plane(origin=(1.978443982, 7.469174188, 61.697366491), z_dir=(-1, 0, 0)), keep=Keep.TOP, mode=Mode.PRIVATE)
    add(fillet1_piece_4)

    # Sketch52 → Cut-Extrude39 (cut)
    with BuildSketch(Plane(origin=(34.915679061, 0, 0), x_dir=(0, 0, -1), z_dir=(1, 0, 0))):
        with Locations((18.334324459, 7.5)):
            Rectangle(SKETCH52_W, SKETCH52_H)
    extrude(amount=-CUT_EXTRUDE39_DEPTH, mode=Mode.SUBTRACT)


with BuildPart() as cut_extrude9_piece_2:
    # of the separate pieces the step leaves, piece 2, a body of its own (cut_extrude9_pieces)
    add(part.part.solids().sort_by_distance((-6.084320939, 15, 96.751461979))[0])

    # Sketch15 → Cut-Extrude10 (cut)
    with BuildSketch(Plane(origin=(0, 15, 0), x_dir=(1, 0, 0), z_dir=(0, 1, 0))):
        with Locations((-15.067513526, -92.658393077)):
            Rectangle(SKETCH15_W, SKETCH15_H)
    extrude(amount=-CUT_EXTRUDE10_DEPTH, mode=Mode.SUBTRACT)


solid = cut_extrude9_piece_1.part
